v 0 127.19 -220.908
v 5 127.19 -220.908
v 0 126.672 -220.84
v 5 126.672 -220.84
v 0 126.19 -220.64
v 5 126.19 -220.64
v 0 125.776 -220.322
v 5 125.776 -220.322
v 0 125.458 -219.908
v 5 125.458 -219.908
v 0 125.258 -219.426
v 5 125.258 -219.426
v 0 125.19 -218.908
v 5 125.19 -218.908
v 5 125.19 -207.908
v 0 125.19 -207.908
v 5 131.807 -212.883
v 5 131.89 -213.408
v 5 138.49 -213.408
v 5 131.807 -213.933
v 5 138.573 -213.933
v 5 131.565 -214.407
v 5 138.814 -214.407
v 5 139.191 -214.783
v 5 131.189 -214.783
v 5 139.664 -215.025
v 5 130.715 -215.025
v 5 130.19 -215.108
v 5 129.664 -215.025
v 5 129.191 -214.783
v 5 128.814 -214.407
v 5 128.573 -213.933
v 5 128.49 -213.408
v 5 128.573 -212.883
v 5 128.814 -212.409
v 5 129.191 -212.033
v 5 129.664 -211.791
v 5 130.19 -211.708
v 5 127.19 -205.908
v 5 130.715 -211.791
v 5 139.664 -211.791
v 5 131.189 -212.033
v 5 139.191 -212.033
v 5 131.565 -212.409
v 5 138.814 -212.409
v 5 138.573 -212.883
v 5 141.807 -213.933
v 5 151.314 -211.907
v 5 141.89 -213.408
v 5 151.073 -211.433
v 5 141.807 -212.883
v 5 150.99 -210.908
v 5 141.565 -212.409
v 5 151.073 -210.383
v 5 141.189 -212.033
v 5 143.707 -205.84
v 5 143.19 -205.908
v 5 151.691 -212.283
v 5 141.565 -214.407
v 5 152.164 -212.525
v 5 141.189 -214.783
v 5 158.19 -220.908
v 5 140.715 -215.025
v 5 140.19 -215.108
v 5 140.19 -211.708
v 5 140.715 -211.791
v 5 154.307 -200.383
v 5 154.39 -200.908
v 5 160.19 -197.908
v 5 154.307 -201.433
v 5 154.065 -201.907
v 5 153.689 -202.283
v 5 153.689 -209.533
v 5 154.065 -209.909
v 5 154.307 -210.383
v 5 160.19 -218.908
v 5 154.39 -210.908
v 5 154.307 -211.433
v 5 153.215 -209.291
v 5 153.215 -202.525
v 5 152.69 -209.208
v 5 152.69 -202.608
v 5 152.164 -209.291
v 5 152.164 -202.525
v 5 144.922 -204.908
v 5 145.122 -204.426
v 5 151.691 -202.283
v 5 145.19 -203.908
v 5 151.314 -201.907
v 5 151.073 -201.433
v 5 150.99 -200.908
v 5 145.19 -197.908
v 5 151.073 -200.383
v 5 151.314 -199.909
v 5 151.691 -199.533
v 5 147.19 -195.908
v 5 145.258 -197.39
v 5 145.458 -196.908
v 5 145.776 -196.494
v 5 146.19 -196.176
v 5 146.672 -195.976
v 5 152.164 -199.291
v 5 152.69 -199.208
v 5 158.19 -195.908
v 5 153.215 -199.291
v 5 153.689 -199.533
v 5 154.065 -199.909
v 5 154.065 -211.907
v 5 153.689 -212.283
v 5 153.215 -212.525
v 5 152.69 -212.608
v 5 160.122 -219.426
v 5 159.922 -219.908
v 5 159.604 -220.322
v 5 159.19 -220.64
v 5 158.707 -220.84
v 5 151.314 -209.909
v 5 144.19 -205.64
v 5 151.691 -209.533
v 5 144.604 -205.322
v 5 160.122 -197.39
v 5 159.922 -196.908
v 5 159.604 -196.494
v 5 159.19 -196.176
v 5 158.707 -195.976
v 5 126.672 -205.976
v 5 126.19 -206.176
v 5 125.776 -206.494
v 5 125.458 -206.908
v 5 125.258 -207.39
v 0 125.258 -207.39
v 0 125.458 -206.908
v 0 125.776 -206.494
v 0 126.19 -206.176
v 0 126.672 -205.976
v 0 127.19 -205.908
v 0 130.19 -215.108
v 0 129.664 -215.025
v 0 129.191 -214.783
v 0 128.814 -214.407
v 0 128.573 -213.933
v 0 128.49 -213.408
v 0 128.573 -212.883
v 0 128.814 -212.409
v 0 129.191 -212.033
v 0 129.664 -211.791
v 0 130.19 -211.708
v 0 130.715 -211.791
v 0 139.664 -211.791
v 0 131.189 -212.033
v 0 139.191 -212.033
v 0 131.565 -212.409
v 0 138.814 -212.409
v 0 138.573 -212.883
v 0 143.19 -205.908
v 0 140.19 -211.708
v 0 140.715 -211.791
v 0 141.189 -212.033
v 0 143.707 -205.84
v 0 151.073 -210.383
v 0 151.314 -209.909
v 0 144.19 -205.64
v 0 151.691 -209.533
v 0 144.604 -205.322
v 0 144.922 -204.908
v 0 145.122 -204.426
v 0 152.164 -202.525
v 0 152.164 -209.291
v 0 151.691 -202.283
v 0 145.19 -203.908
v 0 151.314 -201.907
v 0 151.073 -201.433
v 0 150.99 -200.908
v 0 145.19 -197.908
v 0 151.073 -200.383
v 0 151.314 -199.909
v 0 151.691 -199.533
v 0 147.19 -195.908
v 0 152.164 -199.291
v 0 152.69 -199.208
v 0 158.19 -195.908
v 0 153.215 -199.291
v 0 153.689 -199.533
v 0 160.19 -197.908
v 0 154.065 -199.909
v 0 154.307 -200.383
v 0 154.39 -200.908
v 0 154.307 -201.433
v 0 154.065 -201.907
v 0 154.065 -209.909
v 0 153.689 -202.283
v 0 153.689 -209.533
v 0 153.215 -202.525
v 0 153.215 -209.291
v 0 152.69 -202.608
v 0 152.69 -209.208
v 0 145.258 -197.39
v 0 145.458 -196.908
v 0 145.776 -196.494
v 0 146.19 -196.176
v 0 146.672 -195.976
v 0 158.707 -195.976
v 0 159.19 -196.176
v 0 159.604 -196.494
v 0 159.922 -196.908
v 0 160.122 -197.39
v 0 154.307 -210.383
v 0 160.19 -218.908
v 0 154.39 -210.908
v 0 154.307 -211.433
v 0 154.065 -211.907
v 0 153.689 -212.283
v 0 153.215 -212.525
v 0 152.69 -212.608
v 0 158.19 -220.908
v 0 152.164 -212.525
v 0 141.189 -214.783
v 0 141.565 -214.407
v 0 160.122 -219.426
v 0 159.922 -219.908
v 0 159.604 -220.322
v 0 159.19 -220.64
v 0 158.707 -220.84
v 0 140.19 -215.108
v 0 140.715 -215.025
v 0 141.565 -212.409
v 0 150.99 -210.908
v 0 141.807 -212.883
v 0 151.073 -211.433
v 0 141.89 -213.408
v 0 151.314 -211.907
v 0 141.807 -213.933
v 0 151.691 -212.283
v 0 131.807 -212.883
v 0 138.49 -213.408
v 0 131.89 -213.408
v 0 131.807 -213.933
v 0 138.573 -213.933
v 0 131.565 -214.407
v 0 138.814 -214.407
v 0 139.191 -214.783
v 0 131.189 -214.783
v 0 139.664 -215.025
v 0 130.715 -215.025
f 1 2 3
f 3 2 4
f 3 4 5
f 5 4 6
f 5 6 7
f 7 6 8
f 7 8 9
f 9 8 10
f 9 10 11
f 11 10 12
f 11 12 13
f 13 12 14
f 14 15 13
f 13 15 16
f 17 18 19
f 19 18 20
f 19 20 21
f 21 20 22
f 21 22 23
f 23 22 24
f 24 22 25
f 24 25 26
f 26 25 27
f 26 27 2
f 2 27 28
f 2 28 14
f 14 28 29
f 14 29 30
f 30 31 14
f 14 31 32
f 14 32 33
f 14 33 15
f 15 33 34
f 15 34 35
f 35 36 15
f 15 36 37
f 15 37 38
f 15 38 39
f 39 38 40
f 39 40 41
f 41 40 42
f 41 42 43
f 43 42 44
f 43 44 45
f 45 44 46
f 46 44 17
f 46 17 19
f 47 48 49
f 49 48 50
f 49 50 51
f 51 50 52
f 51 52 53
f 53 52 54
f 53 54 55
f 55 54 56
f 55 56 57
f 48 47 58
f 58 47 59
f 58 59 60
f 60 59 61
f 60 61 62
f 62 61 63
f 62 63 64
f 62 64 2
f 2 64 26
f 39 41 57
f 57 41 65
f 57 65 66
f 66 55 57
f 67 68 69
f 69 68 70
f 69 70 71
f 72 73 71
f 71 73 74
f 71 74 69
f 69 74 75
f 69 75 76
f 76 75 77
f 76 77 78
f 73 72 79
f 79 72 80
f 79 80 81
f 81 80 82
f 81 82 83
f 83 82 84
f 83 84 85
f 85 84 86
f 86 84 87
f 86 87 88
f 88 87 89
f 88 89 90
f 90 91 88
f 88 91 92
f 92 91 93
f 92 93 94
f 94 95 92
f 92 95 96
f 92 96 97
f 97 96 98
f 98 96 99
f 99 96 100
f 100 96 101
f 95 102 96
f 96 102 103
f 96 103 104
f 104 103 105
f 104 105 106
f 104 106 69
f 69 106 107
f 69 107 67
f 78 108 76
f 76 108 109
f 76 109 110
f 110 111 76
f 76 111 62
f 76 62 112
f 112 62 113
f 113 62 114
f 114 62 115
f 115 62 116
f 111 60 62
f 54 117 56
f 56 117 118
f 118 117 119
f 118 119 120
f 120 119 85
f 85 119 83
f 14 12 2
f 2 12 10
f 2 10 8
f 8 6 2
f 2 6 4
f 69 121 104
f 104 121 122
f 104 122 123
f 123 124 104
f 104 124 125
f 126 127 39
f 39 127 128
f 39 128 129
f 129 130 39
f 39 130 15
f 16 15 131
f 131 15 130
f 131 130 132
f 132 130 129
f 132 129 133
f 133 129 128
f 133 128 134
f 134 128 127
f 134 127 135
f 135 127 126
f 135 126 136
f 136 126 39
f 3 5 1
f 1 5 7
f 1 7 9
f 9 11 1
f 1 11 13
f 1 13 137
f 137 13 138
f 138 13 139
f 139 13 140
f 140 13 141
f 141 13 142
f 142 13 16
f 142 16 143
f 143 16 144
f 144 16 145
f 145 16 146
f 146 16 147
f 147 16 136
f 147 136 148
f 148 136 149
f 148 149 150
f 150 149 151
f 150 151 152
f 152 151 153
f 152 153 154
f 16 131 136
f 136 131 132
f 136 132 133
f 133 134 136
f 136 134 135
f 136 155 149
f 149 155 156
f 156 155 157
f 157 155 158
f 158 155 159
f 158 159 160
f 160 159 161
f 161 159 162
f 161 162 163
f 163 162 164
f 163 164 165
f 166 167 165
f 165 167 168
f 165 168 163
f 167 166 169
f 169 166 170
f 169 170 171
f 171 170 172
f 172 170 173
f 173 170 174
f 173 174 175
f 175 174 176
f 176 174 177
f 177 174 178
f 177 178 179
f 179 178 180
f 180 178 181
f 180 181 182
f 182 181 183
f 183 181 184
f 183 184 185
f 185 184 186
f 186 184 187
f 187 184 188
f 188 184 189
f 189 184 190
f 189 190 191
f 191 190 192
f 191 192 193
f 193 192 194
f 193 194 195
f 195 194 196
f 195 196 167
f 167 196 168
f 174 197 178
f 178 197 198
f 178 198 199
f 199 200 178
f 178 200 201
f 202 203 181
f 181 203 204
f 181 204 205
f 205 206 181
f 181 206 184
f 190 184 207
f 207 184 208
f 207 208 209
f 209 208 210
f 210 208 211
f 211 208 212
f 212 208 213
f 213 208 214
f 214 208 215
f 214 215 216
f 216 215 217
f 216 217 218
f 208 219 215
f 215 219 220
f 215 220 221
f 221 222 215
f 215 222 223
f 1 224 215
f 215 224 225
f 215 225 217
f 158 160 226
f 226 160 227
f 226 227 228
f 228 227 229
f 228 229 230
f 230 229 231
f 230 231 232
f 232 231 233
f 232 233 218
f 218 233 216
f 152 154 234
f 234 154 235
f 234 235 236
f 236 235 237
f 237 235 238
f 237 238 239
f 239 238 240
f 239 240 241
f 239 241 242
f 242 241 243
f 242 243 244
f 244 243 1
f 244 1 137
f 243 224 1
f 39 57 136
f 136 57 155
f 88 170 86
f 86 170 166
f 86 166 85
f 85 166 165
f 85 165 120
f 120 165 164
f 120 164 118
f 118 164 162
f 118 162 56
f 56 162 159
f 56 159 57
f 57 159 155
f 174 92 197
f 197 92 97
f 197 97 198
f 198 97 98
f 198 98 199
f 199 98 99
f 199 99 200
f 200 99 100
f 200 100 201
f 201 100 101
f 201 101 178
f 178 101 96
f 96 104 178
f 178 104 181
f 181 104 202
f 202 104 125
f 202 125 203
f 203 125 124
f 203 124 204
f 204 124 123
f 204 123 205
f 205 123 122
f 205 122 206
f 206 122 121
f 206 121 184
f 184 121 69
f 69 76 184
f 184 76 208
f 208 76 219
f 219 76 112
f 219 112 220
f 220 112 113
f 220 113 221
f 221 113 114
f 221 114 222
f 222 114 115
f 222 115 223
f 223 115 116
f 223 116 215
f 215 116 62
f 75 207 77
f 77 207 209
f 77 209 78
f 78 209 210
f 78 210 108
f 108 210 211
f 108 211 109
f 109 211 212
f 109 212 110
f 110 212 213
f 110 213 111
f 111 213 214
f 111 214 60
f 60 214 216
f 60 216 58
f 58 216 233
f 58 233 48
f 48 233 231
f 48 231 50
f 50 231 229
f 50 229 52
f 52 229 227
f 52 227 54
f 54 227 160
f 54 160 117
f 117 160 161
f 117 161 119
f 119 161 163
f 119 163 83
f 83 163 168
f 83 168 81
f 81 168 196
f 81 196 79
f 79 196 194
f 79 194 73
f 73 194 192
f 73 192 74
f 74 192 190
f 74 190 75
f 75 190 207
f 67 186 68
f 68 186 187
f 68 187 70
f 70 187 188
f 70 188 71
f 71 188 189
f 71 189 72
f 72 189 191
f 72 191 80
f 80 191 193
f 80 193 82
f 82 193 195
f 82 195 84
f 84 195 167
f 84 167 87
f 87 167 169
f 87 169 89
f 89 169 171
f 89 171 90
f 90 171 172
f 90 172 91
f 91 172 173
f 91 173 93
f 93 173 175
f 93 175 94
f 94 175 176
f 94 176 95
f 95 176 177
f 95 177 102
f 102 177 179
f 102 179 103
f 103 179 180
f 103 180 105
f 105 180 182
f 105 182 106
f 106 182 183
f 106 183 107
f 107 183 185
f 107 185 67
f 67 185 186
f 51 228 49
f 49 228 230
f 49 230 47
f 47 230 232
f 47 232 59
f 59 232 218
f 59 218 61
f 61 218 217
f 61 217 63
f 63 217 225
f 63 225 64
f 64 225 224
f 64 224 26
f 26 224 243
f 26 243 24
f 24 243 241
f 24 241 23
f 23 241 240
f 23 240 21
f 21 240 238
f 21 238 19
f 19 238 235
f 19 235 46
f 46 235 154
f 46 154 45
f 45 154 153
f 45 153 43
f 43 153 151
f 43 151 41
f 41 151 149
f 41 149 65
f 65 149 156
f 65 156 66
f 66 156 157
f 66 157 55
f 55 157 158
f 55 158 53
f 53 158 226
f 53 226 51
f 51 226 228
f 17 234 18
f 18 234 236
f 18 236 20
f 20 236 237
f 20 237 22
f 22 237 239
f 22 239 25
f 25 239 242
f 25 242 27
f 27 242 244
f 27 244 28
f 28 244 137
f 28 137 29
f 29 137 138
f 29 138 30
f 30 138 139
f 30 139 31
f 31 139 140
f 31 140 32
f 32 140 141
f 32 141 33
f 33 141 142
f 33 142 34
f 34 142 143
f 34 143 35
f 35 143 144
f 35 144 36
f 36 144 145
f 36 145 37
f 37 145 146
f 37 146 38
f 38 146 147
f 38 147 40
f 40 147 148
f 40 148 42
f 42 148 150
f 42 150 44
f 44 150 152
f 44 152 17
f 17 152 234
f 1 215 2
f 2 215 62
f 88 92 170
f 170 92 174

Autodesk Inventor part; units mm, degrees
ref_plane "YZ Plane" through (0, 0, 0) normal (1, 0, 0) x (0, 1, 0)
ref_plane "XZ Plane" through (0, 0, 0) normal (0, 1, 0) x (-1, 0, 0)
ref_plane "XY Plane" through (0, 0, 0) normal (0, 0, 1) x (1, 0, 0)
sketch "スケッチ1" plane through (0, 0, 0) normal (1, 0, 0) x (0, 1, 0)
  line L0 (-144.8102, -220.9081) -> (-144.8102, 234.0919)
  line L1 (-144.8102, -220.9081) -> (145.1898, -220.9081)
  line L2 (145.1898, -220.9081) -> (145.1898, -205.9081)
  line L3 (145.1898, -205.9081) -> (-144.8102, -205.9081)
  line L4 (-144.8102, -205.9081) -> (-144.8102, -220.9081)
  line L5 (145.1898, 234.0919) -> (145.1898, -220.9081)
  line L6 (145.1898, -220.9081) -> (160.1898, -220.9081)
  line L7 (160.1898, 236.5919) -> (160.1898, -220.9081)
  line L8 (0.1898, -205.9081) -> (0.1898, -220.9081)
  line L9 (125.1898, -205.9081) -> (125.1898, -220.9081)
  line L10 (145.1898, -195.9081) -> (160.1898, -195.9081)
  circle A0 centre (130.1898, -213.4081) radius 1.7
  circle A1 centre (140.1898, -213.4081) radius 1.7
  circle A2 centre (152.6898, -210.9081) radius 1.7
  circle A3 centre (152.6898, -200.9081) radius 1.7
  point P0 (0, 0)
  point P1 (-54.8102, -185.9081)
  point P2 (-152.3102, -200.9081)
  point P3 (-152.3102, -210.9081)
  point P4 (-139.8102, -213.4081)
  point P5 (-129.8102, -213.4081)
  dimension "d0" = 15
  dimension "d1" = 0
  dimension "d2" = 10
  dimension "d3" = 7.5
  dimension "d4" = 10
  dimension "d5" = 5
  dimension "d6" = 7.5
  dimension "d7" = 10
  dimension "d8" = 7.5
  dimension "d9" = 7.5
  dimension "d10" = 5
  dimension "d11" = 5
  dimension "d12" = 3.4
  dimension "d13" = 3.4
  dimension "d14" = 3.4
  dimension "d15" = 3.4
extrude "押し出し1" add sketch "スケッチ1" along normal blind 5 contours L9 L3 L2 L1 | L2 L5 L10 L7 L6
fillet "フィレット1" radius 2 6 edges at (2.5, 160.1898, -220.9081) (2.5, 160.1898, -195.9081) (2.5, 145.1898, -195.9081) (2.5, 145.1898, -205.9081) (2.5, 125.1898, -205.9081) (2.5, 125.1898, -220.9081)
equation "\"d6\" = d3"
equation "\"d9\" = d8"
properties part number "ball_loading_v1_Plate_ASP_F_3" material "ABS プラスチック"
